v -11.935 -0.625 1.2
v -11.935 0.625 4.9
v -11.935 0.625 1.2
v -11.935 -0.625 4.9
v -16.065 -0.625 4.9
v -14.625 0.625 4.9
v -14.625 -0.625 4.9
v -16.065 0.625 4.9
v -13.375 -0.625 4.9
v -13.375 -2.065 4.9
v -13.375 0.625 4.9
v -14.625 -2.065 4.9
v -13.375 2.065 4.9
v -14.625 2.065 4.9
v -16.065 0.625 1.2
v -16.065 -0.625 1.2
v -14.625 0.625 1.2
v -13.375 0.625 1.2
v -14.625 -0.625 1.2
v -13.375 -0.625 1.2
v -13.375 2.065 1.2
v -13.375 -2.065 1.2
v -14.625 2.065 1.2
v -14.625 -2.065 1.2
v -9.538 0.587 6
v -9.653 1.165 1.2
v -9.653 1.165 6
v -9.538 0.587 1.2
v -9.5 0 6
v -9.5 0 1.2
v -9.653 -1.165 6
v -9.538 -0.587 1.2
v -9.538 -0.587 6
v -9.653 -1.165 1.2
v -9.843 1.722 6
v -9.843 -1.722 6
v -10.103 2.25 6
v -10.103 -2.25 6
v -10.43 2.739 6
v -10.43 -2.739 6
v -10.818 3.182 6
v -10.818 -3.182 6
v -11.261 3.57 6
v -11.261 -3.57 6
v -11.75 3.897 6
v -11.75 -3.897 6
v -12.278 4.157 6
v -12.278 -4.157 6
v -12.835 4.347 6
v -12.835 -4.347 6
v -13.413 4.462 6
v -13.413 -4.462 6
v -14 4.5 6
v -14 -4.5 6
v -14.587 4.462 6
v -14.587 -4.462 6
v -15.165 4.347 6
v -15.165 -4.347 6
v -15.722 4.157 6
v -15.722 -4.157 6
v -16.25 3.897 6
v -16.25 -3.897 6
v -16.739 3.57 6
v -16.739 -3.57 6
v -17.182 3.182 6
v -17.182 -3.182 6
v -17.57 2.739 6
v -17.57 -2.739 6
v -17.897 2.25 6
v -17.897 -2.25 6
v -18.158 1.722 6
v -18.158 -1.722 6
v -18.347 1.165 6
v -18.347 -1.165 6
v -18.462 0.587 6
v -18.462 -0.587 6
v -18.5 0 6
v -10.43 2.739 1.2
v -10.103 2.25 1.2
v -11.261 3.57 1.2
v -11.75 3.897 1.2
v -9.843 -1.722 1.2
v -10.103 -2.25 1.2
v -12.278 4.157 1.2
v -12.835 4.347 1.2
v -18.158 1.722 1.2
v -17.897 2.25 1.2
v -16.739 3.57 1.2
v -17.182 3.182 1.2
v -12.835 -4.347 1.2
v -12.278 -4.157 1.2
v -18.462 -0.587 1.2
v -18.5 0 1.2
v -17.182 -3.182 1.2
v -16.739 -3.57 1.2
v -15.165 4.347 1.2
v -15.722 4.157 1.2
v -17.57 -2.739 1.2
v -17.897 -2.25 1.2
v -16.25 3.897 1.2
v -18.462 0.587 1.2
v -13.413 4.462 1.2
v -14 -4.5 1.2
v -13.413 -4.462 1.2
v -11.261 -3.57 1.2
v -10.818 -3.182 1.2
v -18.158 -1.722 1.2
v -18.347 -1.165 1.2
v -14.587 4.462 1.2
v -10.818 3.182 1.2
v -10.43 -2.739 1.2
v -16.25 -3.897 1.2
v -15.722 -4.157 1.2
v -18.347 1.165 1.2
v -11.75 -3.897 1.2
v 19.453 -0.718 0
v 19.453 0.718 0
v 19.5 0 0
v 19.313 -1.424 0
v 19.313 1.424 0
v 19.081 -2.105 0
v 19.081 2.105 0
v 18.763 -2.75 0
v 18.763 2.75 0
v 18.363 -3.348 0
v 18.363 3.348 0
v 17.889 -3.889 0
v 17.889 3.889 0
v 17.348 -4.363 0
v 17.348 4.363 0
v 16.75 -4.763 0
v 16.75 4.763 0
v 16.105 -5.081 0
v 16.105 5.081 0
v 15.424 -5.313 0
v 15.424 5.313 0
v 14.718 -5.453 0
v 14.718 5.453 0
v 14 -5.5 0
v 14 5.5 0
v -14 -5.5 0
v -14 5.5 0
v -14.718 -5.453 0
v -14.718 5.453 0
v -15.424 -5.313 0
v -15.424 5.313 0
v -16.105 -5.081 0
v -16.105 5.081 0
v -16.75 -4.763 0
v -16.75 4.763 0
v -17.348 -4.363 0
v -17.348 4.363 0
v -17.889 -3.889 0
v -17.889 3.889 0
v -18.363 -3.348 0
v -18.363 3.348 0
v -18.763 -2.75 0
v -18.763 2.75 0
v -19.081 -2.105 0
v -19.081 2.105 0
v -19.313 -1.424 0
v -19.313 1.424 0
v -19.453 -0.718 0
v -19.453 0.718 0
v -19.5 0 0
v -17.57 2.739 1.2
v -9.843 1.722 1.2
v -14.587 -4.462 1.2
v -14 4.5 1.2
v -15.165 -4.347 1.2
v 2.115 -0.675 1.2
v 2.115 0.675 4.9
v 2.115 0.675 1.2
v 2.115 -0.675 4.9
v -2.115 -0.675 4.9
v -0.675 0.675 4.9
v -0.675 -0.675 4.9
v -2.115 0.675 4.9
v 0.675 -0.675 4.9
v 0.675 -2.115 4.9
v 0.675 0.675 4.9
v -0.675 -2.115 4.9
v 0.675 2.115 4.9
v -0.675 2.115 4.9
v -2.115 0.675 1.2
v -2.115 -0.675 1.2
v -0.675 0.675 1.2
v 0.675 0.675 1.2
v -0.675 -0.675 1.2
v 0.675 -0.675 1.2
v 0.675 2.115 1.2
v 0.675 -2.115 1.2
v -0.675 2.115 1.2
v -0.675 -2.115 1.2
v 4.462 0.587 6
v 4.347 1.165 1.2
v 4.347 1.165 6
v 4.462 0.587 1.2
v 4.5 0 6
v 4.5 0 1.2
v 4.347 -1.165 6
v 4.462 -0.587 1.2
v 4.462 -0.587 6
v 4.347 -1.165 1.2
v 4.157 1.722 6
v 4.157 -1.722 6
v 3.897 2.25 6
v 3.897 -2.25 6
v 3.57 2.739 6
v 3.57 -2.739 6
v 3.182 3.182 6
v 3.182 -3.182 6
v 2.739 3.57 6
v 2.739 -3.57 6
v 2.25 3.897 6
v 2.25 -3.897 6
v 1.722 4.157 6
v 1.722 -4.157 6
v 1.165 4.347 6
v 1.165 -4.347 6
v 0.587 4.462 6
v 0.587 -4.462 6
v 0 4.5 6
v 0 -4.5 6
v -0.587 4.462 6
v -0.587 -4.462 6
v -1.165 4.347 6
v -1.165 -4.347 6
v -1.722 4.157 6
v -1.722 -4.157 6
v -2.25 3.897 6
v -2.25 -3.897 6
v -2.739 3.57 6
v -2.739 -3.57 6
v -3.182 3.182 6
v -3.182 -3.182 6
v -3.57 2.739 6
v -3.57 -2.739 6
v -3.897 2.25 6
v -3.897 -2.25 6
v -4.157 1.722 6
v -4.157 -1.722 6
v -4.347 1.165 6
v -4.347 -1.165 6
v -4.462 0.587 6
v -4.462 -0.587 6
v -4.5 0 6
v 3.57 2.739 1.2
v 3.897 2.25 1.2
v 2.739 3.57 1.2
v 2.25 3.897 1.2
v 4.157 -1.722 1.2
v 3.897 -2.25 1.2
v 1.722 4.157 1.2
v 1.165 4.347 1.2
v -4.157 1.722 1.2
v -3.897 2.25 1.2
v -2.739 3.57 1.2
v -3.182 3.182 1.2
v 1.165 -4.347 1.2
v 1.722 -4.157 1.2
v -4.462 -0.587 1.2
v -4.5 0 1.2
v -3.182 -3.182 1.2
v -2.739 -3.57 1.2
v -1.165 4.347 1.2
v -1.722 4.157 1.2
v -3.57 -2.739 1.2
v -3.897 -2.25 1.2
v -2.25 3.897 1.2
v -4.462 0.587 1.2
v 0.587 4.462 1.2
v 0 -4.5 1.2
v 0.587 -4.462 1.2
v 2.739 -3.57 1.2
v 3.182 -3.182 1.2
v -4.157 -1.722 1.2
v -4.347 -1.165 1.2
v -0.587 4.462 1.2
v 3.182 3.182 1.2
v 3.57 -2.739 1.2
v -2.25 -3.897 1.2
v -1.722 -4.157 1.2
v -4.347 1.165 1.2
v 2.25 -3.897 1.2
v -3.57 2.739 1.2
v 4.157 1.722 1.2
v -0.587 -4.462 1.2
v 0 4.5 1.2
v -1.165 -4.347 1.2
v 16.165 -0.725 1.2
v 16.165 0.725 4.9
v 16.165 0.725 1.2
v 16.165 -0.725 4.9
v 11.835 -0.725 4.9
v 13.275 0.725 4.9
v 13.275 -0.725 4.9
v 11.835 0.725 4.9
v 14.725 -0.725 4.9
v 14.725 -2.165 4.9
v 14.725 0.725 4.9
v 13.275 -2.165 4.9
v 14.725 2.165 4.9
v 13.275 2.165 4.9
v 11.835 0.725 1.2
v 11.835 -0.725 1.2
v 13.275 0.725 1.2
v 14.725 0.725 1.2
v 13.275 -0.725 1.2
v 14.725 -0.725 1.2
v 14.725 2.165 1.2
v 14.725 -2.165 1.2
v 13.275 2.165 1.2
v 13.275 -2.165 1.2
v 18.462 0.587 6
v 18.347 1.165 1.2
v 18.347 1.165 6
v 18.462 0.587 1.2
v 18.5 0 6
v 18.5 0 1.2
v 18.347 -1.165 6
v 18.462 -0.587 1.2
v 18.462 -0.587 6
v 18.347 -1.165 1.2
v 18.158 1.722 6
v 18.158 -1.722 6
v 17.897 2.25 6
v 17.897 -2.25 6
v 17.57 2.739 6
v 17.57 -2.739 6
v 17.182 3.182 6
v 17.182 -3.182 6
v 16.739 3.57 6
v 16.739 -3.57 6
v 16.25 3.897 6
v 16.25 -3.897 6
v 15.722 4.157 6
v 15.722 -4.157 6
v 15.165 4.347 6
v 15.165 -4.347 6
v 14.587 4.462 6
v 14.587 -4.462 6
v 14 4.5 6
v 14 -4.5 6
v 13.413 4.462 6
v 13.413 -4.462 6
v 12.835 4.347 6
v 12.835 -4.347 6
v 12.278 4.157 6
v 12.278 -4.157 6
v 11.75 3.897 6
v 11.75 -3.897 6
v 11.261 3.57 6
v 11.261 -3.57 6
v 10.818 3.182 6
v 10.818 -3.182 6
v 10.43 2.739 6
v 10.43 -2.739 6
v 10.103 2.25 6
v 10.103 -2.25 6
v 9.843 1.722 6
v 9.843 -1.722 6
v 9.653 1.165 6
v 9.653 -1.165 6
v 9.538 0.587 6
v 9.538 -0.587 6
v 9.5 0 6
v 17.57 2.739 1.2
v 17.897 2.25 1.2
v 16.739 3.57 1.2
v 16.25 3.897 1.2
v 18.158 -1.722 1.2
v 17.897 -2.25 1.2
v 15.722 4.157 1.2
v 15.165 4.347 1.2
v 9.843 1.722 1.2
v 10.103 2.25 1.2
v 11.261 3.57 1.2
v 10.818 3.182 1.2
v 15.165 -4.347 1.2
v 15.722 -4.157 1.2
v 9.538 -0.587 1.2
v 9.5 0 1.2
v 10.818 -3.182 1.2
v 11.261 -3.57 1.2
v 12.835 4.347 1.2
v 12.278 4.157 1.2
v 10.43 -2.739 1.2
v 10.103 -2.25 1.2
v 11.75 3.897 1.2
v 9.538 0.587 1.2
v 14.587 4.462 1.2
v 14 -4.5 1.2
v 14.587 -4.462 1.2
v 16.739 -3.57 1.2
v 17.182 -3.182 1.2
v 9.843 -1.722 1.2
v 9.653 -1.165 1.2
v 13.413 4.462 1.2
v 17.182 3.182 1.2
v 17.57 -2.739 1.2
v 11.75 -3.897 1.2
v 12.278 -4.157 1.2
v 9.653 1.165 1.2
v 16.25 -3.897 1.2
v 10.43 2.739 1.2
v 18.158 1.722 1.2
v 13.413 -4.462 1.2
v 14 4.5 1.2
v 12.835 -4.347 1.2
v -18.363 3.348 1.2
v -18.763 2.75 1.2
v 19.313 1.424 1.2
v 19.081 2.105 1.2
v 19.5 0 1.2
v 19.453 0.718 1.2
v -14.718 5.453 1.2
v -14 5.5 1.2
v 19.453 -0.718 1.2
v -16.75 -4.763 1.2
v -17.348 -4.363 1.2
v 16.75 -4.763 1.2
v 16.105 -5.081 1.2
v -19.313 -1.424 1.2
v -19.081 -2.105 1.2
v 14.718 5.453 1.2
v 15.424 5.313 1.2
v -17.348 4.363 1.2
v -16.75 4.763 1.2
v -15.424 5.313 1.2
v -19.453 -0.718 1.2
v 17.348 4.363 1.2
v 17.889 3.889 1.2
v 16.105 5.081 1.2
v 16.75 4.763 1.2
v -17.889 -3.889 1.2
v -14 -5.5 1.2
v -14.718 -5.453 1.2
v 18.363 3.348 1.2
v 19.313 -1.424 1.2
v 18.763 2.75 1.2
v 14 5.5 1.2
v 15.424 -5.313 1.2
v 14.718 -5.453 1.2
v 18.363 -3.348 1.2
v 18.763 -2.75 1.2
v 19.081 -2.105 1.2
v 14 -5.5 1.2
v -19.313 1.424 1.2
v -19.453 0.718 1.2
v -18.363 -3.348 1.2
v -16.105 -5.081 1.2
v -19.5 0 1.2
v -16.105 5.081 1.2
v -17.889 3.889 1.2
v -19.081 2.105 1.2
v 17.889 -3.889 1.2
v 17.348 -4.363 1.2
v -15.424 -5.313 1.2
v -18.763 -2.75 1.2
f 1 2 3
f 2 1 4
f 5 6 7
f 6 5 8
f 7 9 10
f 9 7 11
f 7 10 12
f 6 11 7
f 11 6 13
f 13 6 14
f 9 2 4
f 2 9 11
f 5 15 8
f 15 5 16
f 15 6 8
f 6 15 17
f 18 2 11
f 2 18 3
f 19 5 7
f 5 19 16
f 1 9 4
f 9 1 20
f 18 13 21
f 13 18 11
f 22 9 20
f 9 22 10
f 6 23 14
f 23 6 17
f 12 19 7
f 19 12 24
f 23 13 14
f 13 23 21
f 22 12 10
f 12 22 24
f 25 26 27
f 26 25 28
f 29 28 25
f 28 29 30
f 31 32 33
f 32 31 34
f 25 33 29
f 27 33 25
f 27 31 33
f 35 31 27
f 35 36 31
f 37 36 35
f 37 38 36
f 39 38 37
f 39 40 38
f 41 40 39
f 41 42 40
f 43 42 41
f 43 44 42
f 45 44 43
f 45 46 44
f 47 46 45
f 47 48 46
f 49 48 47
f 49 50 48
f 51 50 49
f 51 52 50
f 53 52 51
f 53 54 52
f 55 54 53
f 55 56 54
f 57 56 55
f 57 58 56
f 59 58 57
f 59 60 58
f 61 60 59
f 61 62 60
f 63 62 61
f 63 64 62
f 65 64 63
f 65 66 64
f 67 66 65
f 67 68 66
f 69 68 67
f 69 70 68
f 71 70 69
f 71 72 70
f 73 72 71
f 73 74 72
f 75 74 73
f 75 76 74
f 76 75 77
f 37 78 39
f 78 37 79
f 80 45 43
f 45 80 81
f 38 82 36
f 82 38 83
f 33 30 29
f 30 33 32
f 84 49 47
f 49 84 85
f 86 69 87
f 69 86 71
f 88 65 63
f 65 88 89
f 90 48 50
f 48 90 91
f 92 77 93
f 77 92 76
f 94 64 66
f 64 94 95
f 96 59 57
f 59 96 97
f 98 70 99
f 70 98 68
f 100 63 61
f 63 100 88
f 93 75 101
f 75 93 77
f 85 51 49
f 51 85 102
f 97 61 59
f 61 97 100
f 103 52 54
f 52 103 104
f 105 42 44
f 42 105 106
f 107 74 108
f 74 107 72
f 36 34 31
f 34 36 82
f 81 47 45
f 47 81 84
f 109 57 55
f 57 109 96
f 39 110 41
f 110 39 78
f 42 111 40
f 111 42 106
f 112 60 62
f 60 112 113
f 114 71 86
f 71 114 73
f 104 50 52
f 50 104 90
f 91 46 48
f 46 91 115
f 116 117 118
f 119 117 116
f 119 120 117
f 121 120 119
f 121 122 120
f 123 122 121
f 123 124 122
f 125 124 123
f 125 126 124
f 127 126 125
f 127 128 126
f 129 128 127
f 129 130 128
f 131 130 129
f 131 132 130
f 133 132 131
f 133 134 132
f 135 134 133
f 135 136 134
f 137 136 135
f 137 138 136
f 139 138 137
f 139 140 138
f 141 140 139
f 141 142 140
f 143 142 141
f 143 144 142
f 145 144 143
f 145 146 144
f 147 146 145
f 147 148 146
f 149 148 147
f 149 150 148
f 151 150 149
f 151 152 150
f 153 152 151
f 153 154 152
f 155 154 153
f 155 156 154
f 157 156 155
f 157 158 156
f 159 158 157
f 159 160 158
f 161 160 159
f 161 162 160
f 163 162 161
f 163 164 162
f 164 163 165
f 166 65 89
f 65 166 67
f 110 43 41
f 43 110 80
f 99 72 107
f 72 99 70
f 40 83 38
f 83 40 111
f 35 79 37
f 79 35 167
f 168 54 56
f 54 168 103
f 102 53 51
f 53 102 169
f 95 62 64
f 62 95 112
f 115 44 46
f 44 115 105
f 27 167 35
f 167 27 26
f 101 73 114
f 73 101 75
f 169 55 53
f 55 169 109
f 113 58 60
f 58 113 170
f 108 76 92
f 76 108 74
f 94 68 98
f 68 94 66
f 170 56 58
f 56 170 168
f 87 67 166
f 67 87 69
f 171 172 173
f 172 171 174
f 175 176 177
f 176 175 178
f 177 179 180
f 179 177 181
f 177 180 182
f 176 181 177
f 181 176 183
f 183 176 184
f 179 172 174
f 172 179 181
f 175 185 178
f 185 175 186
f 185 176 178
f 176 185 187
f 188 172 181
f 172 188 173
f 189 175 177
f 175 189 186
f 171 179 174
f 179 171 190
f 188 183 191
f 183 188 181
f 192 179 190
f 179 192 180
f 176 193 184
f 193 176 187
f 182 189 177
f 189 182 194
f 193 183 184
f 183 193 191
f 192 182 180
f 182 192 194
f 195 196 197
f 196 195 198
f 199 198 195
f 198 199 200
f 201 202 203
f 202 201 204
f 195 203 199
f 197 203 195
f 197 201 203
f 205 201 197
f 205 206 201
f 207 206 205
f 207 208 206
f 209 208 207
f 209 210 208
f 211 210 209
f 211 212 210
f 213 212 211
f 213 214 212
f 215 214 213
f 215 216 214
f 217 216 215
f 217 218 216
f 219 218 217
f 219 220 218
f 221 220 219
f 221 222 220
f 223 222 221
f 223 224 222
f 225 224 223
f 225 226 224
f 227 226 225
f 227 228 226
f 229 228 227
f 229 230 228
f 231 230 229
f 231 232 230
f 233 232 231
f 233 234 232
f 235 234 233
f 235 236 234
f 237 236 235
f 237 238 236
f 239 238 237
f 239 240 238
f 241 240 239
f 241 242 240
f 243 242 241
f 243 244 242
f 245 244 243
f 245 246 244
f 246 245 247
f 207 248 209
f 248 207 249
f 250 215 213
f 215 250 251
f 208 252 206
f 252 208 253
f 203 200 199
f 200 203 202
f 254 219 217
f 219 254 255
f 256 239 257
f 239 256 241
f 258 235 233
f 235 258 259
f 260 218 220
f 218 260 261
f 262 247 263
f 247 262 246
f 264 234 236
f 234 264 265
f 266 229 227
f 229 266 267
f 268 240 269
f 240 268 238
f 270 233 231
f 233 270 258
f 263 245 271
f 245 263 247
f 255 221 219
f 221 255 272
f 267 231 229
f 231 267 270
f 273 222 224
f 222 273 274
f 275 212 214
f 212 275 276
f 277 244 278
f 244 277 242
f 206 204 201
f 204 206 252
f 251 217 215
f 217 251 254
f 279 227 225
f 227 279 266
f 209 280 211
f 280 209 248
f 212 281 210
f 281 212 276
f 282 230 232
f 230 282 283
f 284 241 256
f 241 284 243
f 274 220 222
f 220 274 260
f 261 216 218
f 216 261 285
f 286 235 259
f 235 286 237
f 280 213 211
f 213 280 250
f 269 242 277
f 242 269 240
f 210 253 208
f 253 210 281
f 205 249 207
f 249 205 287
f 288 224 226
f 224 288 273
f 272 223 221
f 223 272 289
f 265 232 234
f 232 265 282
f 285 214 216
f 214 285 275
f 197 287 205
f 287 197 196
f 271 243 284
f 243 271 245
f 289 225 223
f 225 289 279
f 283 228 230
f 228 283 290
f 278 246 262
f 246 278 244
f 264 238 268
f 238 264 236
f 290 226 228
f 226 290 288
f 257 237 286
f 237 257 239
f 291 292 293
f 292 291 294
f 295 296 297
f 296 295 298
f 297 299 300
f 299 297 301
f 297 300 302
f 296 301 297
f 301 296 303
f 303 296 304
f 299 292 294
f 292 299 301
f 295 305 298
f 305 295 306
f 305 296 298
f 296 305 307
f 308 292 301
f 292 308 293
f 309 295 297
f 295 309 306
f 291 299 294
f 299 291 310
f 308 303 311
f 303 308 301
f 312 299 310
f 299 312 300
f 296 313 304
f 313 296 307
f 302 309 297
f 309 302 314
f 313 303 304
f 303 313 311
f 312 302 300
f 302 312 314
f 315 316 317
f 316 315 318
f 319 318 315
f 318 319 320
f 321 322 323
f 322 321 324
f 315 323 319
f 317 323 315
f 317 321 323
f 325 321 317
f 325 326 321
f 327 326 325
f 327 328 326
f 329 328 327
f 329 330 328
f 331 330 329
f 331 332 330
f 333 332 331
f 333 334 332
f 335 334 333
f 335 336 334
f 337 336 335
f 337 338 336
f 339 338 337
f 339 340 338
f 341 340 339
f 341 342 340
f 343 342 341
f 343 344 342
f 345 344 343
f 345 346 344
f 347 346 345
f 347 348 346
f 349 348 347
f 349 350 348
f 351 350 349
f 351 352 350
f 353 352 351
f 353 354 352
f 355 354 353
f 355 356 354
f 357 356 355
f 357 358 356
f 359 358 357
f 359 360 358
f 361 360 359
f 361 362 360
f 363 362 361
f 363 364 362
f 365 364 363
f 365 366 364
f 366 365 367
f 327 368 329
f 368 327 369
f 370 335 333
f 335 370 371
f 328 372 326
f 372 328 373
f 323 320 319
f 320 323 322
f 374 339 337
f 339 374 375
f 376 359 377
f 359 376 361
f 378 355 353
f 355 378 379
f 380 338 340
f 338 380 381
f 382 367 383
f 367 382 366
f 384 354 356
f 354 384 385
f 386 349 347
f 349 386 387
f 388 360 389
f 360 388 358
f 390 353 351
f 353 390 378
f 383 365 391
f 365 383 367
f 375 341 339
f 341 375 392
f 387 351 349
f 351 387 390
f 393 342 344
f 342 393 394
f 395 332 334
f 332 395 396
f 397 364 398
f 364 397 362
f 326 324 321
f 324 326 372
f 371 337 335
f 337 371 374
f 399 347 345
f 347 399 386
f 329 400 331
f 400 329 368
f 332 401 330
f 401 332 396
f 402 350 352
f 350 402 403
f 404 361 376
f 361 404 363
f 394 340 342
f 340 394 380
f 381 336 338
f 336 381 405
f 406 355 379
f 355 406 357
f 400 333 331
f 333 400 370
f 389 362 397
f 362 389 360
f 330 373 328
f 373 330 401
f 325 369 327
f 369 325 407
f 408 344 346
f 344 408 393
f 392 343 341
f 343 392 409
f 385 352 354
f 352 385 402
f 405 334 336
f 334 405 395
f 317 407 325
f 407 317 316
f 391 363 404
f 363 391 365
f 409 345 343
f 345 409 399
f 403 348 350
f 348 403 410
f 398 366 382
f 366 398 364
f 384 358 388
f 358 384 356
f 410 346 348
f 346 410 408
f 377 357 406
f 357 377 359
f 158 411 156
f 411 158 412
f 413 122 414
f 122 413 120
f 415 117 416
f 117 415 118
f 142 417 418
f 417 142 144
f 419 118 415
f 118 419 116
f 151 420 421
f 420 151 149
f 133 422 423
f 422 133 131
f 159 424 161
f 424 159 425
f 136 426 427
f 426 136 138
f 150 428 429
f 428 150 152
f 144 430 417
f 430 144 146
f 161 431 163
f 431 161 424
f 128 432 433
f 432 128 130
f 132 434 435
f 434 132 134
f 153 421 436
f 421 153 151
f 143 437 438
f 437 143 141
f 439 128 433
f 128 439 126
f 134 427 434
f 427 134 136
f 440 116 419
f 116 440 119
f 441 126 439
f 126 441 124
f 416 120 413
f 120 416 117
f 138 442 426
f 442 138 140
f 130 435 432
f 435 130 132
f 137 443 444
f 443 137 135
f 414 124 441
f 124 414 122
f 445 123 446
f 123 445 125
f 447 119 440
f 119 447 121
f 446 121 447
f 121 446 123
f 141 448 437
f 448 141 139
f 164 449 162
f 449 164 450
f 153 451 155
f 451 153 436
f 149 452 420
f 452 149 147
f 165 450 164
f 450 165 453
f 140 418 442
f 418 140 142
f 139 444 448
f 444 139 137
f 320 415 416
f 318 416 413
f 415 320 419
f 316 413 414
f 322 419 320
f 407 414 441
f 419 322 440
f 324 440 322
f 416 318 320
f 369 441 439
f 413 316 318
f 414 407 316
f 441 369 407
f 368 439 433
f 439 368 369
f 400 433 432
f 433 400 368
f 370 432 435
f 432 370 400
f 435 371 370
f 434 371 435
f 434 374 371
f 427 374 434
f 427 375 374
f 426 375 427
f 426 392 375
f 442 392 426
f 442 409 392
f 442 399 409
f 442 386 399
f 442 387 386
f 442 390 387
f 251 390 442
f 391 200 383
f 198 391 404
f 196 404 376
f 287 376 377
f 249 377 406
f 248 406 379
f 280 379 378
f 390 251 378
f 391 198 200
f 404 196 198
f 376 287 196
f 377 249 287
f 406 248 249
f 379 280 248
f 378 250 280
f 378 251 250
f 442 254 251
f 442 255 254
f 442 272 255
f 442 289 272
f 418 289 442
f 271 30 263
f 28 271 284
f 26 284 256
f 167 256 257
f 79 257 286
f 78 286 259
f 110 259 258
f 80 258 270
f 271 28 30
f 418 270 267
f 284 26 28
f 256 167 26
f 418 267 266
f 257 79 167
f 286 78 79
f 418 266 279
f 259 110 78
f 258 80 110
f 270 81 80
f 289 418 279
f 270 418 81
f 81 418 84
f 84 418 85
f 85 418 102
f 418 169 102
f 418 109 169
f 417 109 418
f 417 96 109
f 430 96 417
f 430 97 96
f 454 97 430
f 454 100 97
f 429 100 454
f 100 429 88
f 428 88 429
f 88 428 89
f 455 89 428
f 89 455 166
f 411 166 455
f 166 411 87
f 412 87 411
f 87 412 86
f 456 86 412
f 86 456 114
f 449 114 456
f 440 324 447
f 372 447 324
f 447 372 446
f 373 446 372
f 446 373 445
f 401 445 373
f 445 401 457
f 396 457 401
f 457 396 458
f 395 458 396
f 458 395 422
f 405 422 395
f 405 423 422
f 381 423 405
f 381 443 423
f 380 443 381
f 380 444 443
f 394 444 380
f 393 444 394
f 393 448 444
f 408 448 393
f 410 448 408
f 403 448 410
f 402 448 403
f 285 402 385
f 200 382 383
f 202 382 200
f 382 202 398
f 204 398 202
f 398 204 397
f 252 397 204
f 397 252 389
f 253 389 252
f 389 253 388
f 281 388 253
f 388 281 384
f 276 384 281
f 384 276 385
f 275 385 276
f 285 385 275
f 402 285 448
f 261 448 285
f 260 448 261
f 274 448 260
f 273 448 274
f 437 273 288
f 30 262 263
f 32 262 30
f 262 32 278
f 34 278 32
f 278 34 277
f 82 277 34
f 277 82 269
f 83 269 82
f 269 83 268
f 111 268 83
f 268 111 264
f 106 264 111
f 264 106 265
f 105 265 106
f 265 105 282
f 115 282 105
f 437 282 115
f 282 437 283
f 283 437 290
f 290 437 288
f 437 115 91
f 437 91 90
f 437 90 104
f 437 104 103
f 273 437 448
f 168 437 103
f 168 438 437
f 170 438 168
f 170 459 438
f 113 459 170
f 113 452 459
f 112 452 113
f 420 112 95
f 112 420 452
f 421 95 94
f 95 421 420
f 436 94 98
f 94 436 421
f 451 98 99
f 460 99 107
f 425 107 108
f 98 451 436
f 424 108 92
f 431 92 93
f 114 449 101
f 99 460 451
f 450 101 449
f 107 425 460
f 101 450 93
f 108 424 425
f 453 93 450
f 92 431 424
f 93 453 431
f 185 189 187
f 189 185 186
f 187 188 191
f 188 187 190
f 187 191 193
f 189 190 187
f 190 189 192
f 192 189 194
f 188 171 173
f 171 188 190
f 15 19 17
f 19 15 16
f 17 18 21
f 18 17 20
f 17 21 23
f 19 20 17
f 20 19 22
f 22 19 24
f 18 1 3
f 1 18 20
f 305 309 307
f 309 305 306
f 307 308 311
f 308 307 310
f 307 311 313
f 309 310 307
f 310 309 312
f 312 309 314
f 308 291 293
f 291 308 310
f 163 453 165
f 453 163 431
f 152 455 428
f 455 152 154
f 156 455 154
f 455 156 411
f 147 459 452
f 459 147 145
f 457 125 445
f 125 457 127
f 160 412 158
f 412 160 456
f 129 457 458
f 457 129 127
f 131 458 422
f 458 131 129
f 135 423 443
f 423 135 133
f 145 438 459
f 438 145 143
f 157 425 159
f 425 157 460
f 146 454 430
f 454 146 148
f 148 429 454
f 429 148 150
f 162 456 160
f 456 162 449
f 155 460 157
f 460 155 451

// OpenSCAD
$fn=48;
module cross_slot(len,th,h=5){union(){cube([len,th,h],center=true);cube([th,len,h],center=true);}}
module test(x,tol){
  translate([x,0,0]) difference(){
    cylinder(d=9,h=6);
    translate([0,0,2.4]) cross_slot(4.03+2*tol,1.15+2*tol,5);
  }
}
hull(){translate([-14,0,0]) cylinder(d=11,h=1.2); translate([14,0,0]) cylinder(d=11,h=1.2);}
test(-14,0.05); test(0,0.10); test(14,0.15);
